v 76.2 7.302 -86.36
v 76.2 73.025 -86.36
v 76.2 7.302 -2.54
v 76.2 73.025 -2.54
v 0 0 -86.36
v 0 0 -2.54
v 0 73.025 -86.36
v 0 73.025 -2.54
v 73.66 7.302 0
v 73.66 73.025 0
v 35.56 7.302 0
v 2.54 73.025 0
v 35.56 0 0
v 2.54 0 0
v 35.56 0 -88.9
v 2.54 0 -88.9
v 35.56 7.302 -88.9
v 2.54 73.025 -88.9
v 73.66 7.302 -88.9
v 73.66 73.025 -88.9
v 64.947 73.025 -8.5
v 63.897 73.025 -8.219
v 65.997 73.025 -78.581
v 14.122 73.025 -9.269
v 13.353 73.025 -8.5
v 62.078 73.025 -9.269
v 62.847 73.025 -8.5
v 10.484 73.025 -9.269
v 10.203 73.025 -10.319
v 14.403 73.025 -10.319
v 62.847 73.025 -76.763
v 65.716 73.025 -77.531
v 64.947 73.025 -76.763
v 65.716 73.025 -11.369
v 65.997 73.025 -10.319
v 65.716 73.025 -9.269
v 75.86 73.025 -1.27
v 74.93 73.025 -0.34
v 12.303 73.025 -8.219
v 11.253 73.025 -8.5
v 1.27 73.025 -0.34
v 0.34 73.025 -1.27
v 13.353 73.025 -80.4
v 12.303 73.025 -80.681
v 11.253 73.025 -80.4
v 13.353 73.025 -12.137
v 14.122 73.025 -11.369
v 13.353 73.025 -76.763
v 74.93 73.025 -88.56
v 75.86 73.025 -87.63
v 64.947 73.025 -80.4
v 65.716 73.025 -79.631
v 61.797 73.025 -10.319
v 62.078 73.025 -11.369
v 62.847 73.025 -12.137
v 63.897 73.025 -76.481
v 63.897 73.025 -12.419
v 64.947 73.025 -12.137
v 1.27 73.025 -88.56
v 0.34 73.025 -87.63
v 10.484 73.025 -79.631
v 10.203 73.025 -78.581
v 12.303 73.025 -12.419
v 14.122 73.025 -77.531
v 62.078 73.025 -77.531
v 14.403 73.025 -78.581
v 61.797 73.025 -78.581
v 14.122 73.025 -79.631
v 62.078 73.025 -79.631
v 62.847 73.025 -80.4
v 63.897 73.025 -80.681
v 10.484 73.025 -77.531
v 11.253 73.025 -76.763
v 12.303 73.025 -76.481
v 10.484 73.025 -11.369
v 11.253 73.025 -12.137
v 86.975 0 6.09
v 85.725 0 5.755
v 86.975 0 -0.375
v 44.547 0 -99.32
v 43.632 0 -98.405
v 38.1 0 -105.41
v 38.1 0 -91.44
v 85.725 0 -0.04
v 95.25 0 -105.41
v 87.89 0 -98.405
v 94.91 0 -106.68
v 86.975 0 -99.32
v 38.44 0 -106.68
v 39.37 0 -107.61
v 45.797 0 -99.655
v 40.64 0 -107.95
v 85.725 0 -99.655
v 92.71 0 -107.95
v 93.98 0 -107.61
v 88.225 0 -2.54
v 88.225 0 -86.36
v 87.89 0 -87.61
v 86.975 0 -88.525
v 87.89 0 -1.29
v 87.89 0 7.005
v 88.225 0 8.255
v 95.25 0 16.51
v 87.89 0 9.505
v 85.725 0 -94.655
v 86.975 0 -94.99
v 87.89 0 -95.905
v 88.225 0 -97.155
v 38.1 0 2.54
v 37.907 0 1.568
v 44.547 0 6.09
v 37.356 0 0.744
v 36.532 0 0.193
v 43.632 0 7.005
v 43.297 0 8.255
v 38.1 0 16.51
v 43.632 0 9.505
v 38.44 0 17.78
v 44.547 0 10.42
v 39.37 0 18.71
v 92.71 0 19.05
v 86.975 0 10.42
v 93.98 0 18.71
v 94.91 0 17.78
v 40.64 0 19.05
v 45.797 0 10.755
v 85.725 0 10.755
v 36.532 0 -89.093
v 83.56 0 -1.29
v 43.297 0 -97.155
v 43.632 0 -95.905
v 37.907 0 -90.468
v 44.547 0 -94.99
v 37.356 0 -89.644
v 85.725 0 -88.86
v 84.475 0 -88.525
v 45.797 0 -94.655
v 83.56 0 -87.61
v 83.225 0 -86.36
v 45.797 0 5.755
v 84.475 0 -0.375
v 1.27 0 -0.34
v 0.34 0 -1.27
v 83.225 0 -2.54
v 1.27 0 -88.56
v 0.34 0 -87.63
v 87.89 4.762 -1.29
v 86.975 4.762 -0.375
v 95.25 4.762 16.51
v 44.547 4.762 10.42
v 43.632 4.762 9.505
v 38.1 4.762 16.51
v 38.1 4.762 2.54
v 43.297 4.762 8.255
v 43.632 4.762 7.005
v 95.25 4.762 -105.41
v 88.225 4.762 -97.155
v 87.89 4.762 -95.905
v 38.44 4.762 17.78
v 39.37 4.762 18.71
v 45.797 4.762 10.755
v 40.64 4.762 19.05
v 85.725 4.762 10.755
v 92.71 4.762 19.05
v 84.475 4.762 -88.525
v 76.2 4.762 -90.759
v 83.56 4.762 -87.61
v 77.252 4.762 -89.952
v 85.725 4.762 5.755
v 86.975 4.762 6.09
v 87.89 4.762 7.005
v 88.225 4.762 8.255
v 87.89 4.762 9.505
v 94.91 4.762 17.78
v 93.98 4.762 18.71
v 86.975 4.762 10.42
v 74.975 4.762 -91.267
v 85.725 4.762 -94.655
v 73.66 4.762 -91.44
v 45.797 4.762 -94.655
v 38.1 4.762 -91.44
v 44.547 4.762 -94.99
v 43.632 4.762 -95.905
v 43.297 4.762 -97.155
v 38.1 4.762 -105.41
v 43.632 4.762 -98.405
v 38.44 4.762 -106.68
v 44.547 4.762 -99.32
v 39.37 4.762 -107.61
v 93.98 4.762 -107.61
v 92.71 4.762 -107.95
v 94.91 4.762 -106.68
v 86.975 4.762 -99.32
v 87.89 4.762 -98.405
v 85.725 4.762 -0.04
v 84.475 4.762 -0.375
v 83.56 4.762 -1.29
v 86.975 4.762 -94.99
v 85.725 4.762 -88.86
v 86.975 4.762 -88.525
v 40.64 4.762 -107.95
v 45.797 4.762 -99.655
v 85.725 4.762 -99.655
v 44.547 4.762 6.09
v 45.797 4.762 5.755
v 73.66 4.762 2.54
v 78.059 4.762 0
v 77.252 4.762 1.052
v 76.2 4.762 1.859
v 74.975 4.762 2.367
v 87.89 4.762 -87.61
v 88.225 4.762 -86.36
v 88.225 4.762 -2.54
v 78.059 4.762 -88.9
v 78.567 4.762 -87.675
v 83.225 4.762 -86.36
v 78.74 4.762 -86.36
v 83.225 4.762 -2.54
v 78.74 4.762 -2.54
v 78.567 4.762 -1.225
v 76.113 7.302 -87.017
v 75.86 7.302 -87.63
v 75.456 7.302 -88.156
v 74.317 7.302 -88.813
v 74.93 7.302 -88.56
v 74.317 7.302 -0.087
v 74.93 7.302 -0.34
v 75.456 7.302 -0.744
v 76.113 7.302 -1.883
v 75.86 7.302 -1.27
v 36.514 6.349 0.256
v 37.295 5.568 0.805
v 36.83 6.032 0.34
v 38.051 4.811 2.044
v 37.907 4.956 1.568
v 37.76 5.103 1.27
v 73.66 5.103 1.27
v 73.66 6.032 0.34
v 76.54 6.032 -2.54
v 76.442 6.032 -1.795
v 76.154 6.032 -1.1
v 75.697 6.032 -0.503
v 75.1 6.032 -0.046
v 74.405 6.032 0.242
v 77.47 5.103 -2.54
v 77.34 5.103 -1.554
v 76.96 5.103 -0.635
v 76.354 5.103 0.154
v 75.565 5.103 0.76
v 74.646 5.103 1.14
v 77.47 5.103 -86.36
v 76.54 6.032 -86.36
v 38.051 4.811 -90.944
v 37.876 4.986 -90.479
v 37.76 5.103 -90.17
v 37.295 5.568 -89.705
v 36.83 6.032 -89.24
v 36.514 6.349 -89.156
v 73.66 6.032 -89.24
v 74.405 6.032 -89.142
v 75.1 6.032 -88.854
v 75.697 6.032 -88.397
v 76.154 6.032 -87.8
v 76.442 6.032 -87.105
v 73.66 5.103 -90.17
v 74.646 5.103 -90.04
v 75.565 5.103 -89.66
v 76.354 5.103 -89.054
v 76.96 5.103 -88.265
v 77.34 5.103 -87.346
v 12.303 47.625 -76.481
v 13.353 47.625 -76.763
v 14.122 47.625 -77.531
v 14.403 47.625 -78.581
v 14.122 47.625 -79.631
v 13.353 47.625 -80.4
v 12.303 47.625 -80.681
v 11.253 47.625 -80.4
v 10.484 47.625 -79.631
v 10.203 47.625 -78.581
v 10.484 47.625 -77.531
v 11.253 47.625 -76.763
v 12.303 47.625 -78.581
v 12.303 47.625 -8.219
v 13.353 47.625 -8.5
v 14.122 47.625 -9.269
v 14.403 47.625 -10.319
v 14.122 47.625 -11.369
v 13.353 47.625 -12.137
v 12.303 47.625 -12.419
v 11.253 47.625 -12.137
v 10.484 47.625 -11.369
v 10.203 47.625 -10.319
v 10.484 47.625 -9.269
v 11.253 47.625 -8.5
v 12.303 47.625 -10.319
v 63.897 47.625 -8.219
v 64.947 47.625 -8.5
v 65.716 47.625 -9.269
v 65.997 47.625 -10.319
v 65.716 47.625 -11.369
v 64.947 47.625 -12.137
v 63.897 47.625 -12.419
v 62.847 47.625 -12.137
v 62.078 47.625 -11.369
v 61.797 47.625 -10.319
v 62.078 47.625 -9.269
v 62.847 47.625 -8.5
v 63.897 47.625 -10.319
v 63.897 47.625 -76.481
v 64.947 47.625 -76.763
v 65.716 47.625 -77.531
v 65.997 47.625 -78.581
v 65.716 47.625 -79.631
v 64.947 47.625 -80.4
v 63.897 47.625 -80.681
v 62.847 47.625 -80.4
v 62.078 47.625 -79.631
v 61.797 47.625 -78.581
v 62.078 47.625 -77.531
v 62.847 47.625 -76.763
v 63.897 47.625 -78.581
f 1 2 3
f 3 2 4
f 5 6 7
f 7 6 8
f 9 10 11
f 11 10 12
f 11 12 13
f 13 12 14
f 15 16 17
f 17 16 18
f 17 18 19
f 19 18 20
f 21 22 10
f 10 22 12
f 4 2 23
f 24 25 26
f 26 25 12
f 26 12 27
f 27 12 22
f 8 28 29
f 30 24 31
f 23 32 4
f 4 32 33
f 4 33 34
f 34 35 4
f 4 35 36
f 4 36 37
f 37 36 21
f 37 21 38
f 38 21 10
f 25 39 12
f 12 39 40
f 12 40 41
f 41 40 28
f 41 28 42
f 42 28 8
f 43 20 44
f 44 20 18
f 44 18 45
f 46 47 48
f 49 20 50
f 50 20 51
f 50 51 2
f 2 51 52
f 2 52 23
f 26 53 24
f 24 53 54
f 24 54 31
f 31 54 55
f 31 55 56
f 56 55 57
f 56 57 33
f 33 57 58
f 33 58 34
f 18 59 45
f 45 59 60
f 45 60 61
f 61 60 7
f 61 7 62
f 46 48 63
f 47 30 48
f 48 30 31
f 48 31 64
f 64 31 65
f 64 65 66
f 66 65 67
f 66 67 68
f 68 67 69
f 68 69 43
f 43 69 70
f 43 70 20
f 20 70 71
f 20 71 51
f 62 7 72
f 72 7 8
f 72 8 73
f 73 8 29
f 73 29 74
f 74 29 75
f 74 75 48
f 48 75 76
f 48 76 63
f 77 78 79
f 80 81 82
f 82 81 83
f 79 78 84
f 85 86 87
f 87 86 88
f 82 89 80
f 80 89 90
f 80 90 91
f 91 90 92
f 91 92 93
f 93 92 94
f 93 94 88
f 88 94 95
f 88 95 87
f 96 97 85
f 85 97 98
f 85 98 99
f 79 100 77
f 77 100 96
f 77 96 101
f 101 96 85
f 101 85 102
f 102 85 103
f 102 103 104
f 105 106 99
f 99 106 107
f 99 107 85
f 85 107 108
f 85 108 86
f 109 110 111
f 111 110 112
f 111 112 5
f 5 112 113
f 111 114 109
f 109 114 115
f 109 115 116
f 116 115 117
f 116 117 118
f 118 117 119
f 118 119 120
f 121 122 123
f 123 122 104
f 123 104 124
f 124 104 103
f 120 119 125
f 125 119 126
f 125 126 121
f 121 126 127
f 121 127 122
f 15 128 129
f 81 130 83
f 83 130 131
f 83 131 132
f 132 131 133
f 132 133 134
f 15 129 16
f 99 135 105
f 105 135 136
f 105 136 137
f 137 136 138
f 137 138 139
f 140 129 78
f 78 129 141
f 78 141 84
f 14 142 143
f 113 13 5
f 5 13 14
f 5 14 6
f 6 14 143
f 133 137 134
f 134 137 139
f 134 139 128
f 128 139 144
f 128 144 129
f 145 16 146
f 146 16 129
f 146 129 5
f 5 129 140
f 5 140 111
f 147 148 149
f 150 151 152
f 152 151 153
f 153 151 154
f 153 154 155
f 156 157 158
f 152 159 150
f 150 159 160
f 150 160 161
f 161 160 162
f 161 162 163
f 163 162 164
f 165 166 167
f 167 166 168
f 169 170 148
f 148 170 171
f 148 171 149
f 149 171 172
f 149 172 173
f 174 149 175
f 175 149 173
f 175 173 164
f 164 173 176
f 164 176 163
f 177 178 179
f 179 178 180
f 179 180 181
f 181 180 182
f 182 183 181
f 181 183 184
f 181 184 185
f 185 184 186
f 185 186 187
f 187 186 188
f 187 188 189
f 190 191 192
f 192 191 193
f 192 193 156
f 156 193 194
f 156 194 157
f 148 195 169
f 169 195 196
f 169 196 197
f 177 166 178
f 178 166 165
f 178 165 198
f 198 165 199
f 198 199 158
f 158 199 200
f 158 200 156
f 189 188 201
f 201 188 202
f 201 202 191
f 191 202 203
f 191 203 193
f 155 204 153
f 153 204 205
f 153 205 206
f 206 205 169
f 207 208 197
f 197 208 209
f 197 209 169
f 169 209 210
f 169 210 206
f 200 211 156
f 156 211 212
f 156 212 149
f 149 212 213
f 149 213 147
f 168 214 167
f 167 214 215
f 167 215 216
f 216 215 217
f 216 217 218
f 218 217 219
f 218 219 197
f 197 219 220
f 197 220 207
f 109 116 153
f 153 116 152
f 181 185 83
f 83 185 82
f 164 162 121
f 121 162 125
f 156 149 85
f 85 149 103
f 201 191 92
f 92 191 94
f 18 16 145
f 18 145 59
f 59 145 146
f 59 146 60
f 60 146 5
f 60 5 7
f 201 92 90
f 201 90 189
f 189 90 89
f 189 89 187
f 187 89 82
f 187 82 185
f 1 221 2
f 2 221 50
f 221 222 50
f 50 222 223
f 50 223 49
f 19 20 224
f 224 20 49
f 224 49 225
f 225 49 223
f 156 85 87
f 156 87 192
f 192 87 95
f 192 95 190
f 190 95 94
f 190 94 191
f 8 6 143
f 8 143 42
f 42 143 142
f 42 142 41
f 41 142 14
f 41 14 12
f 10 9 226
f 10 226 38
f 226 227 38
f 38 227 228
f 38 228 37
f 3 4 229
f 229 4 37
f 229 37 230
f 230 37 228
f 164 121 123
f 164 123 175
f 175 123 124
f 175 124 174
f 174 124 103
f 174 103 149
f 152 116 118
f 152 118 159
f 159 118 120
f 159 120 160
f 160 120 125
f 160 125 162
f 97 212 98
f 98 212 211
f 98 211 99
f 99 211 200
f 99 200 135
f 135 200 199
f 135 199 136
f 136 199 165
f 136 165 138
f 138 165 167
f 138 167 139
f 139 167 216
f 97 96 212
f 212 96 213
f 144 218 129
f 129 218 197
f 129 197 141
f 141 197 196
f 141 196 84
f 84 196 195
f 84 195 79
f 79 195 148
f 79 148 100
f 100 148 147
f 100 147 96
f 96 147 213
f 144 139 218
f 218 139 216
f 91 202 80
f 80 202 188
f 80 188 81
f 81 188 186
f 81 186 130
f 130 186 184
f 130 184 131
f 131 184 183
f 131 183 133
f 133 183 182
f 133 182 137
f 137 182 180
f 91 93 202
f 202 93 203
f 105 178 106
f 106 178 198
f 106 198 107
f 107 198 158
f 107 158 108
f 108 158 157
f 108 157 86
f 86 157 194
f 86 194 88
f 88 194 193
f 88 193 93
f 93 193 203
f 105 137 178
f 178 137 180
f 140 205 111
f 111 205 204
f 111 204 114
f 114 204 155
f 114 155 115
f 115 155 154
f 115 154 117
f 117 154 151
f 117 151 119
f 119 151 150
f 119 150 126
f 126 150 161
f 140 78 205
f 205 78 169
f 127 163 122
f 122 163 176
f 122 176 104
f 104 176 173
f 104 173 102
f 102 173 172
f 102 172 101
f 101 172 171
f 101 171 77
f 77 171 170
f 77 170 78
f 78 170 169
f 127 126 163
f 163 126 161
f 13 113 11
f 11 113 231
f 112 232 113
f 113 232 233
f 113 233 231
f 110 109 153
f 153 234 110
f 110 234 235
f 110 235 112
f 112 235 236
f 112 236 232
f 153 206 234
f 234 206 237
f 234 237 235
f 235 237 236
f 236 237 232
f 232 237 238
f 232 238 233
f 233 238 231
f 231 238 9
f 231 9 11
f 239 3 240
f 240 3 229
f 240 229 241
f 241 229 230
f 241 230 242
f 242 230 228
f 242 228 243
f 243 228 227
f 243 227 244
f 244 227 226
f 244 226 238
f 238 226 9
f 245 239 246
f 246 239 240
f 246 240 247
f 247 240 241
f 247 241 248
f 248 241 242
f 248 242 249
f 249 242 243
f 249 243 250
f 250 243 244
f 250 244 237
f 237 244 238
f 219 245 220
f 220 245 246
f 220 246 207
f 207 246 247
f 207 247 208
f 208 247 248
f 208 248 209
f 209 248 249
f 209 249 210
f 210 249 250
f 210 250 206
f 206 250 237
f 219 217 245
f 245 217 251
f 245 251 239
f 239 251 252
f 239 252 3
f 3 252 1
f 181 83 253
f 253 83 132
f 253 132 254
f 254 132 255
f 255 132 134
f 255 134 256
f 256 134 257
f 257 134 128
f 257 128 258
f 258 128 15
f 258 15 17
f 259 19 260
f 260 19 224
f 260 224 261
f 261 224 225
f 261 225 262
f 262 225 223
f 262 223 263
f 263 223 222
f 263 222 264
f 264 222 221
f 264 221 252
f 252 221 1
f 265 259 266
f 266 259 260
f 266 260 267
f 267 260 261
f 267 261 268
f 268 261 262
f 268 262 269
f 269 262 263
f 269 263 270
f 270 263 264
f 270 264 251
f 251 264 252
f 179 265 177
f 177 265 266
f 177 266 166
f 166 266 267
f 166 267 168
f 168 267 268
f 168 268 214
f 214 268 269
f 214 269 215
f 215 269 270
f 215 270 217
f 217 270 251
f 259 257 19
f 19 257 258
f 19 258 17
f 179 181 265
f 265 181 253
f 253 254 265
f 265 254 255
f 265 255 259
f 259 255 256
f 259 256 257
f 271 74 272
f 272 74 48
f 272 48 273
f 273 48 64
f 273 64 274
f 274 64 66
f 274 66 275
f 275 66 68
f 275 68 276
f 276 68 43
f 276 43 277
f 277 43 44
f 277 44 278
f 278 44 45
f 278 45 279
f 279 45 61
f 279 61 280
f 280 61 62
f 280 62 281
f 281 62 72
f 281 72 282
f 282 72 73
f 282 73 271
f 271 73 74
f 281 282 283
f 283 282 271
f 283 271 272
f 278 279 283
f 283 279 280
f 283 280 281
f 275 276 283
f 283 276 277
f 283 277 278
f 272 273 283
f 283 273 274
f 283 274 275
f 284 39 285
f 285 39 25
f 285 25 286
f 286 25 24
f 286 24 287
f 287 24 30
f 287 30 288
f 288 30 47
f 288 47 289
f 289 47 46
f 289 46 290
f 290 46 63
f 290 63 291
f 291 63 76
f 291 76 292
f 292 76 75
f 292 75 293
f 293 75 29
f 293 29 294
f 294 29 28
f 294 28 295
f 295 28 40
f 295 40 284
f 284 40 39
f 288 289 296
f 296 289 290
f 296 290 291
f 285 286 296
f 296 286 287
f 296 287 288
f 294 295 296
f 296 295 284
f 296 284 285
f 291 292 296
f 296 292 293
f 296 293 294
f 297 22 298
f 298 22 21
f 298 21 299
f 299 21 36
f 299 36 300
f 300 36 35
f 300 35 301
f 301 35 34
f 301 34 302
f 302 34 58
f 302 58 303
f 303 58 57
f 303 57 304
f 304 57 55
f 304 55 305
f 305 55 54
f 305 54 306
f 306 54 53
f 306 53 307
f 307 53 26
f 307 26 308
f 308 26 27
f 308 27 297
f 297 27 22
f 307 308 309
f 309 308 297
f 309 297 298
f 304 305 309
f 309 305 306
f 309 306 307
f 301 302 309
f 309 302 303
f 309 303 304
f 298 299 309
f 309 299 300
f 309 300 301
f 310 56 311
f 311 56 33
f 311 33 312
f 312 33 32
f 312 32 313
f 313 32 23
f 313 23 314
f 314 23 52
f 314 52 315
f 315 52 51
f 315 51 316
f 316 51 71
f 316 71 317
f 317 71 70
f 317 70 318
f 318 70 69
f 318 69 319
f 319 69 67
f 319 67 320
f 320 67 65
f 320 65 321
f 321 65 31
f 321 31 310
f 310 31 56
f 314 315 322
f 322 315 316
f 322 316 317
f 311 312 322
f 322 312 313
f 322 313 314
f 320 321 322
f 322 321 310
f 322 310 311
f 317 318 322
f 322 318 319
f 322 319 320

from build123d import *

# Parameters (mm, degrees)
SKETCH1_W           = 76.2
SKETCH1_H           = 88.9
BOSS_EXTRUDE1_DEPTH = 73.025
BOSS_EXTRUDE2_DEPTH = 4.7625
FILLET1_R           = 2.54
CUT_EXTRUDE1_DEPTH  = 5.7625
FILLET2_R           = 2.54
SKETCH4_R           = 2.1
CUT_EXTRUDE2_DEPTH  = 25.4


with BuildPart() as part:
    # Sketch1 → Boss-Extrude1 (new body)
    with BuildSketch(Plane(origin=(0, 0, 0), x_dir=(1, 0, 0), z_dir=(0, 1, 0))):
        with Locations((38.1, 44.45)):
            Rectangle(SKETCH1_W, SKETCH1_H)
    extrude(amount=BOSS_EXTRUDE1_DEPTH)

    # Sketch2 → Boss-Extrude2 (add)
    with BuildSketch(Plane.XZ):
        Polygon((38.1, 0), (38.1, 19.05), (95.25, 19.05), (95.25, -107.95), (38.1, -107.95), (38.1, -88.9), align=None)
    extrude(amount=-BOSS_EXTRUDE2_DEPTH)

    # Fillet1
    fillet1_edges = [part.edges().sort_by_distance(p)[0] for p in [
        (38.1, 2.38125, -107.95),
        (38.1, 2.38125, 19.05),
        (95.25, 2.38125, 19.05),
        (95.25, 2.38125, -107.95),
        (0, 36.5125, -88.9),
        (76.2, 38.89375, -88.9),
        (76.2, 38.89375, 0),
        (0, 36.5125, 0),
    ]]
    fillet(fillet1_edges, radius=FILLET1_R)

    # Sketch3 → Cut-Extrude1 (cut, through all)
    with BuildSketch(Plane(origin=(0, 4.7625, 0), x_dir=(1, 0, 0), z_dir=(0, 1, 0))):
        with BuildLine():
            Line((45.796852287, 99.655), (85.725, 99.655))
            ThreePointArc((85.725, 99.655), (88.225, 97.155), (85.725, 94.655))
            Line((85.725, 94.655), (45.796852287, 94.655))
            ThreePointArc((45.796852287, 94.655), (43.296852287, 97.155), (45.796852287, 99.655))
        make_face()
        with BuildLine():
            Line((45.796852287, -10.755), (85.725, -10.755))
            ThreePointArc((85.725, -10.755), (88.225, -8.255), (85.725, -5.755))
            Line((85.725, -5.755), (45.796852287, -5.755))
            ThreePointArc((45.796852287, -5.755), (43.296852287, -8.255), (45.796852287, -10.755))
        make_face()
        with BuildLine():
            Line((88.225, 86.36), (88.225, 2.54))
            ThreePointArc((88.225, 2.54), (85.725, 0.04), (83.225, 2.54))
            Line((83.225, 2.54), (83.225, 86.36))
            ThreePointArc((83.225, 86.36), (85.725, 88.86), (88.225, 86.36))
        make_face()
    extrude(amount=-CUT_EXTRUDE1_DEPTH, mode=Mode.SUBTRACT)

    # Fillet2
    fillet2_edges = [part.edges().sort_by_distance(p)[0] for p in [
        (55.88, 4.7625, -88.9),
        (38.1, 2.38125, 0),
        (38.1, 2.38125, -88.9),
        (76.2, 4.7625, -44.45),
        (55.88, 4.7625, 0),
        (75.456051224, 4.7625, -88.156051224),
        (75.456051224, 4.7625, -0.743948776),
    ]]
    fillet(fillet2_edges, radius=FILLET2_R)

    # Sketch4 → Cut-Extrude2 (cut)
    with BuildSketch(Plane(origin=(0, 73.025, 0), x_dir=(1, 0, 0), z_dir=(0, 1, 0))):
        with Locations((12.303125, 78.58125)):
            Circle(SKETCH4_R)
        with Locations((12.303125, 10.31875)):
            Circle(SKETCH4_R)
        with Locations((63.896875, 10.31875)):
            Circle(SKETCH4_R)
        with Locations((63.896875, 78.58125)):
            Circle(SKETCH4_R)
    extrude(amount=-CUT_EXTRUDE2_DEPTH, mode=Mode.SUBTRACT)


solid = part.part
